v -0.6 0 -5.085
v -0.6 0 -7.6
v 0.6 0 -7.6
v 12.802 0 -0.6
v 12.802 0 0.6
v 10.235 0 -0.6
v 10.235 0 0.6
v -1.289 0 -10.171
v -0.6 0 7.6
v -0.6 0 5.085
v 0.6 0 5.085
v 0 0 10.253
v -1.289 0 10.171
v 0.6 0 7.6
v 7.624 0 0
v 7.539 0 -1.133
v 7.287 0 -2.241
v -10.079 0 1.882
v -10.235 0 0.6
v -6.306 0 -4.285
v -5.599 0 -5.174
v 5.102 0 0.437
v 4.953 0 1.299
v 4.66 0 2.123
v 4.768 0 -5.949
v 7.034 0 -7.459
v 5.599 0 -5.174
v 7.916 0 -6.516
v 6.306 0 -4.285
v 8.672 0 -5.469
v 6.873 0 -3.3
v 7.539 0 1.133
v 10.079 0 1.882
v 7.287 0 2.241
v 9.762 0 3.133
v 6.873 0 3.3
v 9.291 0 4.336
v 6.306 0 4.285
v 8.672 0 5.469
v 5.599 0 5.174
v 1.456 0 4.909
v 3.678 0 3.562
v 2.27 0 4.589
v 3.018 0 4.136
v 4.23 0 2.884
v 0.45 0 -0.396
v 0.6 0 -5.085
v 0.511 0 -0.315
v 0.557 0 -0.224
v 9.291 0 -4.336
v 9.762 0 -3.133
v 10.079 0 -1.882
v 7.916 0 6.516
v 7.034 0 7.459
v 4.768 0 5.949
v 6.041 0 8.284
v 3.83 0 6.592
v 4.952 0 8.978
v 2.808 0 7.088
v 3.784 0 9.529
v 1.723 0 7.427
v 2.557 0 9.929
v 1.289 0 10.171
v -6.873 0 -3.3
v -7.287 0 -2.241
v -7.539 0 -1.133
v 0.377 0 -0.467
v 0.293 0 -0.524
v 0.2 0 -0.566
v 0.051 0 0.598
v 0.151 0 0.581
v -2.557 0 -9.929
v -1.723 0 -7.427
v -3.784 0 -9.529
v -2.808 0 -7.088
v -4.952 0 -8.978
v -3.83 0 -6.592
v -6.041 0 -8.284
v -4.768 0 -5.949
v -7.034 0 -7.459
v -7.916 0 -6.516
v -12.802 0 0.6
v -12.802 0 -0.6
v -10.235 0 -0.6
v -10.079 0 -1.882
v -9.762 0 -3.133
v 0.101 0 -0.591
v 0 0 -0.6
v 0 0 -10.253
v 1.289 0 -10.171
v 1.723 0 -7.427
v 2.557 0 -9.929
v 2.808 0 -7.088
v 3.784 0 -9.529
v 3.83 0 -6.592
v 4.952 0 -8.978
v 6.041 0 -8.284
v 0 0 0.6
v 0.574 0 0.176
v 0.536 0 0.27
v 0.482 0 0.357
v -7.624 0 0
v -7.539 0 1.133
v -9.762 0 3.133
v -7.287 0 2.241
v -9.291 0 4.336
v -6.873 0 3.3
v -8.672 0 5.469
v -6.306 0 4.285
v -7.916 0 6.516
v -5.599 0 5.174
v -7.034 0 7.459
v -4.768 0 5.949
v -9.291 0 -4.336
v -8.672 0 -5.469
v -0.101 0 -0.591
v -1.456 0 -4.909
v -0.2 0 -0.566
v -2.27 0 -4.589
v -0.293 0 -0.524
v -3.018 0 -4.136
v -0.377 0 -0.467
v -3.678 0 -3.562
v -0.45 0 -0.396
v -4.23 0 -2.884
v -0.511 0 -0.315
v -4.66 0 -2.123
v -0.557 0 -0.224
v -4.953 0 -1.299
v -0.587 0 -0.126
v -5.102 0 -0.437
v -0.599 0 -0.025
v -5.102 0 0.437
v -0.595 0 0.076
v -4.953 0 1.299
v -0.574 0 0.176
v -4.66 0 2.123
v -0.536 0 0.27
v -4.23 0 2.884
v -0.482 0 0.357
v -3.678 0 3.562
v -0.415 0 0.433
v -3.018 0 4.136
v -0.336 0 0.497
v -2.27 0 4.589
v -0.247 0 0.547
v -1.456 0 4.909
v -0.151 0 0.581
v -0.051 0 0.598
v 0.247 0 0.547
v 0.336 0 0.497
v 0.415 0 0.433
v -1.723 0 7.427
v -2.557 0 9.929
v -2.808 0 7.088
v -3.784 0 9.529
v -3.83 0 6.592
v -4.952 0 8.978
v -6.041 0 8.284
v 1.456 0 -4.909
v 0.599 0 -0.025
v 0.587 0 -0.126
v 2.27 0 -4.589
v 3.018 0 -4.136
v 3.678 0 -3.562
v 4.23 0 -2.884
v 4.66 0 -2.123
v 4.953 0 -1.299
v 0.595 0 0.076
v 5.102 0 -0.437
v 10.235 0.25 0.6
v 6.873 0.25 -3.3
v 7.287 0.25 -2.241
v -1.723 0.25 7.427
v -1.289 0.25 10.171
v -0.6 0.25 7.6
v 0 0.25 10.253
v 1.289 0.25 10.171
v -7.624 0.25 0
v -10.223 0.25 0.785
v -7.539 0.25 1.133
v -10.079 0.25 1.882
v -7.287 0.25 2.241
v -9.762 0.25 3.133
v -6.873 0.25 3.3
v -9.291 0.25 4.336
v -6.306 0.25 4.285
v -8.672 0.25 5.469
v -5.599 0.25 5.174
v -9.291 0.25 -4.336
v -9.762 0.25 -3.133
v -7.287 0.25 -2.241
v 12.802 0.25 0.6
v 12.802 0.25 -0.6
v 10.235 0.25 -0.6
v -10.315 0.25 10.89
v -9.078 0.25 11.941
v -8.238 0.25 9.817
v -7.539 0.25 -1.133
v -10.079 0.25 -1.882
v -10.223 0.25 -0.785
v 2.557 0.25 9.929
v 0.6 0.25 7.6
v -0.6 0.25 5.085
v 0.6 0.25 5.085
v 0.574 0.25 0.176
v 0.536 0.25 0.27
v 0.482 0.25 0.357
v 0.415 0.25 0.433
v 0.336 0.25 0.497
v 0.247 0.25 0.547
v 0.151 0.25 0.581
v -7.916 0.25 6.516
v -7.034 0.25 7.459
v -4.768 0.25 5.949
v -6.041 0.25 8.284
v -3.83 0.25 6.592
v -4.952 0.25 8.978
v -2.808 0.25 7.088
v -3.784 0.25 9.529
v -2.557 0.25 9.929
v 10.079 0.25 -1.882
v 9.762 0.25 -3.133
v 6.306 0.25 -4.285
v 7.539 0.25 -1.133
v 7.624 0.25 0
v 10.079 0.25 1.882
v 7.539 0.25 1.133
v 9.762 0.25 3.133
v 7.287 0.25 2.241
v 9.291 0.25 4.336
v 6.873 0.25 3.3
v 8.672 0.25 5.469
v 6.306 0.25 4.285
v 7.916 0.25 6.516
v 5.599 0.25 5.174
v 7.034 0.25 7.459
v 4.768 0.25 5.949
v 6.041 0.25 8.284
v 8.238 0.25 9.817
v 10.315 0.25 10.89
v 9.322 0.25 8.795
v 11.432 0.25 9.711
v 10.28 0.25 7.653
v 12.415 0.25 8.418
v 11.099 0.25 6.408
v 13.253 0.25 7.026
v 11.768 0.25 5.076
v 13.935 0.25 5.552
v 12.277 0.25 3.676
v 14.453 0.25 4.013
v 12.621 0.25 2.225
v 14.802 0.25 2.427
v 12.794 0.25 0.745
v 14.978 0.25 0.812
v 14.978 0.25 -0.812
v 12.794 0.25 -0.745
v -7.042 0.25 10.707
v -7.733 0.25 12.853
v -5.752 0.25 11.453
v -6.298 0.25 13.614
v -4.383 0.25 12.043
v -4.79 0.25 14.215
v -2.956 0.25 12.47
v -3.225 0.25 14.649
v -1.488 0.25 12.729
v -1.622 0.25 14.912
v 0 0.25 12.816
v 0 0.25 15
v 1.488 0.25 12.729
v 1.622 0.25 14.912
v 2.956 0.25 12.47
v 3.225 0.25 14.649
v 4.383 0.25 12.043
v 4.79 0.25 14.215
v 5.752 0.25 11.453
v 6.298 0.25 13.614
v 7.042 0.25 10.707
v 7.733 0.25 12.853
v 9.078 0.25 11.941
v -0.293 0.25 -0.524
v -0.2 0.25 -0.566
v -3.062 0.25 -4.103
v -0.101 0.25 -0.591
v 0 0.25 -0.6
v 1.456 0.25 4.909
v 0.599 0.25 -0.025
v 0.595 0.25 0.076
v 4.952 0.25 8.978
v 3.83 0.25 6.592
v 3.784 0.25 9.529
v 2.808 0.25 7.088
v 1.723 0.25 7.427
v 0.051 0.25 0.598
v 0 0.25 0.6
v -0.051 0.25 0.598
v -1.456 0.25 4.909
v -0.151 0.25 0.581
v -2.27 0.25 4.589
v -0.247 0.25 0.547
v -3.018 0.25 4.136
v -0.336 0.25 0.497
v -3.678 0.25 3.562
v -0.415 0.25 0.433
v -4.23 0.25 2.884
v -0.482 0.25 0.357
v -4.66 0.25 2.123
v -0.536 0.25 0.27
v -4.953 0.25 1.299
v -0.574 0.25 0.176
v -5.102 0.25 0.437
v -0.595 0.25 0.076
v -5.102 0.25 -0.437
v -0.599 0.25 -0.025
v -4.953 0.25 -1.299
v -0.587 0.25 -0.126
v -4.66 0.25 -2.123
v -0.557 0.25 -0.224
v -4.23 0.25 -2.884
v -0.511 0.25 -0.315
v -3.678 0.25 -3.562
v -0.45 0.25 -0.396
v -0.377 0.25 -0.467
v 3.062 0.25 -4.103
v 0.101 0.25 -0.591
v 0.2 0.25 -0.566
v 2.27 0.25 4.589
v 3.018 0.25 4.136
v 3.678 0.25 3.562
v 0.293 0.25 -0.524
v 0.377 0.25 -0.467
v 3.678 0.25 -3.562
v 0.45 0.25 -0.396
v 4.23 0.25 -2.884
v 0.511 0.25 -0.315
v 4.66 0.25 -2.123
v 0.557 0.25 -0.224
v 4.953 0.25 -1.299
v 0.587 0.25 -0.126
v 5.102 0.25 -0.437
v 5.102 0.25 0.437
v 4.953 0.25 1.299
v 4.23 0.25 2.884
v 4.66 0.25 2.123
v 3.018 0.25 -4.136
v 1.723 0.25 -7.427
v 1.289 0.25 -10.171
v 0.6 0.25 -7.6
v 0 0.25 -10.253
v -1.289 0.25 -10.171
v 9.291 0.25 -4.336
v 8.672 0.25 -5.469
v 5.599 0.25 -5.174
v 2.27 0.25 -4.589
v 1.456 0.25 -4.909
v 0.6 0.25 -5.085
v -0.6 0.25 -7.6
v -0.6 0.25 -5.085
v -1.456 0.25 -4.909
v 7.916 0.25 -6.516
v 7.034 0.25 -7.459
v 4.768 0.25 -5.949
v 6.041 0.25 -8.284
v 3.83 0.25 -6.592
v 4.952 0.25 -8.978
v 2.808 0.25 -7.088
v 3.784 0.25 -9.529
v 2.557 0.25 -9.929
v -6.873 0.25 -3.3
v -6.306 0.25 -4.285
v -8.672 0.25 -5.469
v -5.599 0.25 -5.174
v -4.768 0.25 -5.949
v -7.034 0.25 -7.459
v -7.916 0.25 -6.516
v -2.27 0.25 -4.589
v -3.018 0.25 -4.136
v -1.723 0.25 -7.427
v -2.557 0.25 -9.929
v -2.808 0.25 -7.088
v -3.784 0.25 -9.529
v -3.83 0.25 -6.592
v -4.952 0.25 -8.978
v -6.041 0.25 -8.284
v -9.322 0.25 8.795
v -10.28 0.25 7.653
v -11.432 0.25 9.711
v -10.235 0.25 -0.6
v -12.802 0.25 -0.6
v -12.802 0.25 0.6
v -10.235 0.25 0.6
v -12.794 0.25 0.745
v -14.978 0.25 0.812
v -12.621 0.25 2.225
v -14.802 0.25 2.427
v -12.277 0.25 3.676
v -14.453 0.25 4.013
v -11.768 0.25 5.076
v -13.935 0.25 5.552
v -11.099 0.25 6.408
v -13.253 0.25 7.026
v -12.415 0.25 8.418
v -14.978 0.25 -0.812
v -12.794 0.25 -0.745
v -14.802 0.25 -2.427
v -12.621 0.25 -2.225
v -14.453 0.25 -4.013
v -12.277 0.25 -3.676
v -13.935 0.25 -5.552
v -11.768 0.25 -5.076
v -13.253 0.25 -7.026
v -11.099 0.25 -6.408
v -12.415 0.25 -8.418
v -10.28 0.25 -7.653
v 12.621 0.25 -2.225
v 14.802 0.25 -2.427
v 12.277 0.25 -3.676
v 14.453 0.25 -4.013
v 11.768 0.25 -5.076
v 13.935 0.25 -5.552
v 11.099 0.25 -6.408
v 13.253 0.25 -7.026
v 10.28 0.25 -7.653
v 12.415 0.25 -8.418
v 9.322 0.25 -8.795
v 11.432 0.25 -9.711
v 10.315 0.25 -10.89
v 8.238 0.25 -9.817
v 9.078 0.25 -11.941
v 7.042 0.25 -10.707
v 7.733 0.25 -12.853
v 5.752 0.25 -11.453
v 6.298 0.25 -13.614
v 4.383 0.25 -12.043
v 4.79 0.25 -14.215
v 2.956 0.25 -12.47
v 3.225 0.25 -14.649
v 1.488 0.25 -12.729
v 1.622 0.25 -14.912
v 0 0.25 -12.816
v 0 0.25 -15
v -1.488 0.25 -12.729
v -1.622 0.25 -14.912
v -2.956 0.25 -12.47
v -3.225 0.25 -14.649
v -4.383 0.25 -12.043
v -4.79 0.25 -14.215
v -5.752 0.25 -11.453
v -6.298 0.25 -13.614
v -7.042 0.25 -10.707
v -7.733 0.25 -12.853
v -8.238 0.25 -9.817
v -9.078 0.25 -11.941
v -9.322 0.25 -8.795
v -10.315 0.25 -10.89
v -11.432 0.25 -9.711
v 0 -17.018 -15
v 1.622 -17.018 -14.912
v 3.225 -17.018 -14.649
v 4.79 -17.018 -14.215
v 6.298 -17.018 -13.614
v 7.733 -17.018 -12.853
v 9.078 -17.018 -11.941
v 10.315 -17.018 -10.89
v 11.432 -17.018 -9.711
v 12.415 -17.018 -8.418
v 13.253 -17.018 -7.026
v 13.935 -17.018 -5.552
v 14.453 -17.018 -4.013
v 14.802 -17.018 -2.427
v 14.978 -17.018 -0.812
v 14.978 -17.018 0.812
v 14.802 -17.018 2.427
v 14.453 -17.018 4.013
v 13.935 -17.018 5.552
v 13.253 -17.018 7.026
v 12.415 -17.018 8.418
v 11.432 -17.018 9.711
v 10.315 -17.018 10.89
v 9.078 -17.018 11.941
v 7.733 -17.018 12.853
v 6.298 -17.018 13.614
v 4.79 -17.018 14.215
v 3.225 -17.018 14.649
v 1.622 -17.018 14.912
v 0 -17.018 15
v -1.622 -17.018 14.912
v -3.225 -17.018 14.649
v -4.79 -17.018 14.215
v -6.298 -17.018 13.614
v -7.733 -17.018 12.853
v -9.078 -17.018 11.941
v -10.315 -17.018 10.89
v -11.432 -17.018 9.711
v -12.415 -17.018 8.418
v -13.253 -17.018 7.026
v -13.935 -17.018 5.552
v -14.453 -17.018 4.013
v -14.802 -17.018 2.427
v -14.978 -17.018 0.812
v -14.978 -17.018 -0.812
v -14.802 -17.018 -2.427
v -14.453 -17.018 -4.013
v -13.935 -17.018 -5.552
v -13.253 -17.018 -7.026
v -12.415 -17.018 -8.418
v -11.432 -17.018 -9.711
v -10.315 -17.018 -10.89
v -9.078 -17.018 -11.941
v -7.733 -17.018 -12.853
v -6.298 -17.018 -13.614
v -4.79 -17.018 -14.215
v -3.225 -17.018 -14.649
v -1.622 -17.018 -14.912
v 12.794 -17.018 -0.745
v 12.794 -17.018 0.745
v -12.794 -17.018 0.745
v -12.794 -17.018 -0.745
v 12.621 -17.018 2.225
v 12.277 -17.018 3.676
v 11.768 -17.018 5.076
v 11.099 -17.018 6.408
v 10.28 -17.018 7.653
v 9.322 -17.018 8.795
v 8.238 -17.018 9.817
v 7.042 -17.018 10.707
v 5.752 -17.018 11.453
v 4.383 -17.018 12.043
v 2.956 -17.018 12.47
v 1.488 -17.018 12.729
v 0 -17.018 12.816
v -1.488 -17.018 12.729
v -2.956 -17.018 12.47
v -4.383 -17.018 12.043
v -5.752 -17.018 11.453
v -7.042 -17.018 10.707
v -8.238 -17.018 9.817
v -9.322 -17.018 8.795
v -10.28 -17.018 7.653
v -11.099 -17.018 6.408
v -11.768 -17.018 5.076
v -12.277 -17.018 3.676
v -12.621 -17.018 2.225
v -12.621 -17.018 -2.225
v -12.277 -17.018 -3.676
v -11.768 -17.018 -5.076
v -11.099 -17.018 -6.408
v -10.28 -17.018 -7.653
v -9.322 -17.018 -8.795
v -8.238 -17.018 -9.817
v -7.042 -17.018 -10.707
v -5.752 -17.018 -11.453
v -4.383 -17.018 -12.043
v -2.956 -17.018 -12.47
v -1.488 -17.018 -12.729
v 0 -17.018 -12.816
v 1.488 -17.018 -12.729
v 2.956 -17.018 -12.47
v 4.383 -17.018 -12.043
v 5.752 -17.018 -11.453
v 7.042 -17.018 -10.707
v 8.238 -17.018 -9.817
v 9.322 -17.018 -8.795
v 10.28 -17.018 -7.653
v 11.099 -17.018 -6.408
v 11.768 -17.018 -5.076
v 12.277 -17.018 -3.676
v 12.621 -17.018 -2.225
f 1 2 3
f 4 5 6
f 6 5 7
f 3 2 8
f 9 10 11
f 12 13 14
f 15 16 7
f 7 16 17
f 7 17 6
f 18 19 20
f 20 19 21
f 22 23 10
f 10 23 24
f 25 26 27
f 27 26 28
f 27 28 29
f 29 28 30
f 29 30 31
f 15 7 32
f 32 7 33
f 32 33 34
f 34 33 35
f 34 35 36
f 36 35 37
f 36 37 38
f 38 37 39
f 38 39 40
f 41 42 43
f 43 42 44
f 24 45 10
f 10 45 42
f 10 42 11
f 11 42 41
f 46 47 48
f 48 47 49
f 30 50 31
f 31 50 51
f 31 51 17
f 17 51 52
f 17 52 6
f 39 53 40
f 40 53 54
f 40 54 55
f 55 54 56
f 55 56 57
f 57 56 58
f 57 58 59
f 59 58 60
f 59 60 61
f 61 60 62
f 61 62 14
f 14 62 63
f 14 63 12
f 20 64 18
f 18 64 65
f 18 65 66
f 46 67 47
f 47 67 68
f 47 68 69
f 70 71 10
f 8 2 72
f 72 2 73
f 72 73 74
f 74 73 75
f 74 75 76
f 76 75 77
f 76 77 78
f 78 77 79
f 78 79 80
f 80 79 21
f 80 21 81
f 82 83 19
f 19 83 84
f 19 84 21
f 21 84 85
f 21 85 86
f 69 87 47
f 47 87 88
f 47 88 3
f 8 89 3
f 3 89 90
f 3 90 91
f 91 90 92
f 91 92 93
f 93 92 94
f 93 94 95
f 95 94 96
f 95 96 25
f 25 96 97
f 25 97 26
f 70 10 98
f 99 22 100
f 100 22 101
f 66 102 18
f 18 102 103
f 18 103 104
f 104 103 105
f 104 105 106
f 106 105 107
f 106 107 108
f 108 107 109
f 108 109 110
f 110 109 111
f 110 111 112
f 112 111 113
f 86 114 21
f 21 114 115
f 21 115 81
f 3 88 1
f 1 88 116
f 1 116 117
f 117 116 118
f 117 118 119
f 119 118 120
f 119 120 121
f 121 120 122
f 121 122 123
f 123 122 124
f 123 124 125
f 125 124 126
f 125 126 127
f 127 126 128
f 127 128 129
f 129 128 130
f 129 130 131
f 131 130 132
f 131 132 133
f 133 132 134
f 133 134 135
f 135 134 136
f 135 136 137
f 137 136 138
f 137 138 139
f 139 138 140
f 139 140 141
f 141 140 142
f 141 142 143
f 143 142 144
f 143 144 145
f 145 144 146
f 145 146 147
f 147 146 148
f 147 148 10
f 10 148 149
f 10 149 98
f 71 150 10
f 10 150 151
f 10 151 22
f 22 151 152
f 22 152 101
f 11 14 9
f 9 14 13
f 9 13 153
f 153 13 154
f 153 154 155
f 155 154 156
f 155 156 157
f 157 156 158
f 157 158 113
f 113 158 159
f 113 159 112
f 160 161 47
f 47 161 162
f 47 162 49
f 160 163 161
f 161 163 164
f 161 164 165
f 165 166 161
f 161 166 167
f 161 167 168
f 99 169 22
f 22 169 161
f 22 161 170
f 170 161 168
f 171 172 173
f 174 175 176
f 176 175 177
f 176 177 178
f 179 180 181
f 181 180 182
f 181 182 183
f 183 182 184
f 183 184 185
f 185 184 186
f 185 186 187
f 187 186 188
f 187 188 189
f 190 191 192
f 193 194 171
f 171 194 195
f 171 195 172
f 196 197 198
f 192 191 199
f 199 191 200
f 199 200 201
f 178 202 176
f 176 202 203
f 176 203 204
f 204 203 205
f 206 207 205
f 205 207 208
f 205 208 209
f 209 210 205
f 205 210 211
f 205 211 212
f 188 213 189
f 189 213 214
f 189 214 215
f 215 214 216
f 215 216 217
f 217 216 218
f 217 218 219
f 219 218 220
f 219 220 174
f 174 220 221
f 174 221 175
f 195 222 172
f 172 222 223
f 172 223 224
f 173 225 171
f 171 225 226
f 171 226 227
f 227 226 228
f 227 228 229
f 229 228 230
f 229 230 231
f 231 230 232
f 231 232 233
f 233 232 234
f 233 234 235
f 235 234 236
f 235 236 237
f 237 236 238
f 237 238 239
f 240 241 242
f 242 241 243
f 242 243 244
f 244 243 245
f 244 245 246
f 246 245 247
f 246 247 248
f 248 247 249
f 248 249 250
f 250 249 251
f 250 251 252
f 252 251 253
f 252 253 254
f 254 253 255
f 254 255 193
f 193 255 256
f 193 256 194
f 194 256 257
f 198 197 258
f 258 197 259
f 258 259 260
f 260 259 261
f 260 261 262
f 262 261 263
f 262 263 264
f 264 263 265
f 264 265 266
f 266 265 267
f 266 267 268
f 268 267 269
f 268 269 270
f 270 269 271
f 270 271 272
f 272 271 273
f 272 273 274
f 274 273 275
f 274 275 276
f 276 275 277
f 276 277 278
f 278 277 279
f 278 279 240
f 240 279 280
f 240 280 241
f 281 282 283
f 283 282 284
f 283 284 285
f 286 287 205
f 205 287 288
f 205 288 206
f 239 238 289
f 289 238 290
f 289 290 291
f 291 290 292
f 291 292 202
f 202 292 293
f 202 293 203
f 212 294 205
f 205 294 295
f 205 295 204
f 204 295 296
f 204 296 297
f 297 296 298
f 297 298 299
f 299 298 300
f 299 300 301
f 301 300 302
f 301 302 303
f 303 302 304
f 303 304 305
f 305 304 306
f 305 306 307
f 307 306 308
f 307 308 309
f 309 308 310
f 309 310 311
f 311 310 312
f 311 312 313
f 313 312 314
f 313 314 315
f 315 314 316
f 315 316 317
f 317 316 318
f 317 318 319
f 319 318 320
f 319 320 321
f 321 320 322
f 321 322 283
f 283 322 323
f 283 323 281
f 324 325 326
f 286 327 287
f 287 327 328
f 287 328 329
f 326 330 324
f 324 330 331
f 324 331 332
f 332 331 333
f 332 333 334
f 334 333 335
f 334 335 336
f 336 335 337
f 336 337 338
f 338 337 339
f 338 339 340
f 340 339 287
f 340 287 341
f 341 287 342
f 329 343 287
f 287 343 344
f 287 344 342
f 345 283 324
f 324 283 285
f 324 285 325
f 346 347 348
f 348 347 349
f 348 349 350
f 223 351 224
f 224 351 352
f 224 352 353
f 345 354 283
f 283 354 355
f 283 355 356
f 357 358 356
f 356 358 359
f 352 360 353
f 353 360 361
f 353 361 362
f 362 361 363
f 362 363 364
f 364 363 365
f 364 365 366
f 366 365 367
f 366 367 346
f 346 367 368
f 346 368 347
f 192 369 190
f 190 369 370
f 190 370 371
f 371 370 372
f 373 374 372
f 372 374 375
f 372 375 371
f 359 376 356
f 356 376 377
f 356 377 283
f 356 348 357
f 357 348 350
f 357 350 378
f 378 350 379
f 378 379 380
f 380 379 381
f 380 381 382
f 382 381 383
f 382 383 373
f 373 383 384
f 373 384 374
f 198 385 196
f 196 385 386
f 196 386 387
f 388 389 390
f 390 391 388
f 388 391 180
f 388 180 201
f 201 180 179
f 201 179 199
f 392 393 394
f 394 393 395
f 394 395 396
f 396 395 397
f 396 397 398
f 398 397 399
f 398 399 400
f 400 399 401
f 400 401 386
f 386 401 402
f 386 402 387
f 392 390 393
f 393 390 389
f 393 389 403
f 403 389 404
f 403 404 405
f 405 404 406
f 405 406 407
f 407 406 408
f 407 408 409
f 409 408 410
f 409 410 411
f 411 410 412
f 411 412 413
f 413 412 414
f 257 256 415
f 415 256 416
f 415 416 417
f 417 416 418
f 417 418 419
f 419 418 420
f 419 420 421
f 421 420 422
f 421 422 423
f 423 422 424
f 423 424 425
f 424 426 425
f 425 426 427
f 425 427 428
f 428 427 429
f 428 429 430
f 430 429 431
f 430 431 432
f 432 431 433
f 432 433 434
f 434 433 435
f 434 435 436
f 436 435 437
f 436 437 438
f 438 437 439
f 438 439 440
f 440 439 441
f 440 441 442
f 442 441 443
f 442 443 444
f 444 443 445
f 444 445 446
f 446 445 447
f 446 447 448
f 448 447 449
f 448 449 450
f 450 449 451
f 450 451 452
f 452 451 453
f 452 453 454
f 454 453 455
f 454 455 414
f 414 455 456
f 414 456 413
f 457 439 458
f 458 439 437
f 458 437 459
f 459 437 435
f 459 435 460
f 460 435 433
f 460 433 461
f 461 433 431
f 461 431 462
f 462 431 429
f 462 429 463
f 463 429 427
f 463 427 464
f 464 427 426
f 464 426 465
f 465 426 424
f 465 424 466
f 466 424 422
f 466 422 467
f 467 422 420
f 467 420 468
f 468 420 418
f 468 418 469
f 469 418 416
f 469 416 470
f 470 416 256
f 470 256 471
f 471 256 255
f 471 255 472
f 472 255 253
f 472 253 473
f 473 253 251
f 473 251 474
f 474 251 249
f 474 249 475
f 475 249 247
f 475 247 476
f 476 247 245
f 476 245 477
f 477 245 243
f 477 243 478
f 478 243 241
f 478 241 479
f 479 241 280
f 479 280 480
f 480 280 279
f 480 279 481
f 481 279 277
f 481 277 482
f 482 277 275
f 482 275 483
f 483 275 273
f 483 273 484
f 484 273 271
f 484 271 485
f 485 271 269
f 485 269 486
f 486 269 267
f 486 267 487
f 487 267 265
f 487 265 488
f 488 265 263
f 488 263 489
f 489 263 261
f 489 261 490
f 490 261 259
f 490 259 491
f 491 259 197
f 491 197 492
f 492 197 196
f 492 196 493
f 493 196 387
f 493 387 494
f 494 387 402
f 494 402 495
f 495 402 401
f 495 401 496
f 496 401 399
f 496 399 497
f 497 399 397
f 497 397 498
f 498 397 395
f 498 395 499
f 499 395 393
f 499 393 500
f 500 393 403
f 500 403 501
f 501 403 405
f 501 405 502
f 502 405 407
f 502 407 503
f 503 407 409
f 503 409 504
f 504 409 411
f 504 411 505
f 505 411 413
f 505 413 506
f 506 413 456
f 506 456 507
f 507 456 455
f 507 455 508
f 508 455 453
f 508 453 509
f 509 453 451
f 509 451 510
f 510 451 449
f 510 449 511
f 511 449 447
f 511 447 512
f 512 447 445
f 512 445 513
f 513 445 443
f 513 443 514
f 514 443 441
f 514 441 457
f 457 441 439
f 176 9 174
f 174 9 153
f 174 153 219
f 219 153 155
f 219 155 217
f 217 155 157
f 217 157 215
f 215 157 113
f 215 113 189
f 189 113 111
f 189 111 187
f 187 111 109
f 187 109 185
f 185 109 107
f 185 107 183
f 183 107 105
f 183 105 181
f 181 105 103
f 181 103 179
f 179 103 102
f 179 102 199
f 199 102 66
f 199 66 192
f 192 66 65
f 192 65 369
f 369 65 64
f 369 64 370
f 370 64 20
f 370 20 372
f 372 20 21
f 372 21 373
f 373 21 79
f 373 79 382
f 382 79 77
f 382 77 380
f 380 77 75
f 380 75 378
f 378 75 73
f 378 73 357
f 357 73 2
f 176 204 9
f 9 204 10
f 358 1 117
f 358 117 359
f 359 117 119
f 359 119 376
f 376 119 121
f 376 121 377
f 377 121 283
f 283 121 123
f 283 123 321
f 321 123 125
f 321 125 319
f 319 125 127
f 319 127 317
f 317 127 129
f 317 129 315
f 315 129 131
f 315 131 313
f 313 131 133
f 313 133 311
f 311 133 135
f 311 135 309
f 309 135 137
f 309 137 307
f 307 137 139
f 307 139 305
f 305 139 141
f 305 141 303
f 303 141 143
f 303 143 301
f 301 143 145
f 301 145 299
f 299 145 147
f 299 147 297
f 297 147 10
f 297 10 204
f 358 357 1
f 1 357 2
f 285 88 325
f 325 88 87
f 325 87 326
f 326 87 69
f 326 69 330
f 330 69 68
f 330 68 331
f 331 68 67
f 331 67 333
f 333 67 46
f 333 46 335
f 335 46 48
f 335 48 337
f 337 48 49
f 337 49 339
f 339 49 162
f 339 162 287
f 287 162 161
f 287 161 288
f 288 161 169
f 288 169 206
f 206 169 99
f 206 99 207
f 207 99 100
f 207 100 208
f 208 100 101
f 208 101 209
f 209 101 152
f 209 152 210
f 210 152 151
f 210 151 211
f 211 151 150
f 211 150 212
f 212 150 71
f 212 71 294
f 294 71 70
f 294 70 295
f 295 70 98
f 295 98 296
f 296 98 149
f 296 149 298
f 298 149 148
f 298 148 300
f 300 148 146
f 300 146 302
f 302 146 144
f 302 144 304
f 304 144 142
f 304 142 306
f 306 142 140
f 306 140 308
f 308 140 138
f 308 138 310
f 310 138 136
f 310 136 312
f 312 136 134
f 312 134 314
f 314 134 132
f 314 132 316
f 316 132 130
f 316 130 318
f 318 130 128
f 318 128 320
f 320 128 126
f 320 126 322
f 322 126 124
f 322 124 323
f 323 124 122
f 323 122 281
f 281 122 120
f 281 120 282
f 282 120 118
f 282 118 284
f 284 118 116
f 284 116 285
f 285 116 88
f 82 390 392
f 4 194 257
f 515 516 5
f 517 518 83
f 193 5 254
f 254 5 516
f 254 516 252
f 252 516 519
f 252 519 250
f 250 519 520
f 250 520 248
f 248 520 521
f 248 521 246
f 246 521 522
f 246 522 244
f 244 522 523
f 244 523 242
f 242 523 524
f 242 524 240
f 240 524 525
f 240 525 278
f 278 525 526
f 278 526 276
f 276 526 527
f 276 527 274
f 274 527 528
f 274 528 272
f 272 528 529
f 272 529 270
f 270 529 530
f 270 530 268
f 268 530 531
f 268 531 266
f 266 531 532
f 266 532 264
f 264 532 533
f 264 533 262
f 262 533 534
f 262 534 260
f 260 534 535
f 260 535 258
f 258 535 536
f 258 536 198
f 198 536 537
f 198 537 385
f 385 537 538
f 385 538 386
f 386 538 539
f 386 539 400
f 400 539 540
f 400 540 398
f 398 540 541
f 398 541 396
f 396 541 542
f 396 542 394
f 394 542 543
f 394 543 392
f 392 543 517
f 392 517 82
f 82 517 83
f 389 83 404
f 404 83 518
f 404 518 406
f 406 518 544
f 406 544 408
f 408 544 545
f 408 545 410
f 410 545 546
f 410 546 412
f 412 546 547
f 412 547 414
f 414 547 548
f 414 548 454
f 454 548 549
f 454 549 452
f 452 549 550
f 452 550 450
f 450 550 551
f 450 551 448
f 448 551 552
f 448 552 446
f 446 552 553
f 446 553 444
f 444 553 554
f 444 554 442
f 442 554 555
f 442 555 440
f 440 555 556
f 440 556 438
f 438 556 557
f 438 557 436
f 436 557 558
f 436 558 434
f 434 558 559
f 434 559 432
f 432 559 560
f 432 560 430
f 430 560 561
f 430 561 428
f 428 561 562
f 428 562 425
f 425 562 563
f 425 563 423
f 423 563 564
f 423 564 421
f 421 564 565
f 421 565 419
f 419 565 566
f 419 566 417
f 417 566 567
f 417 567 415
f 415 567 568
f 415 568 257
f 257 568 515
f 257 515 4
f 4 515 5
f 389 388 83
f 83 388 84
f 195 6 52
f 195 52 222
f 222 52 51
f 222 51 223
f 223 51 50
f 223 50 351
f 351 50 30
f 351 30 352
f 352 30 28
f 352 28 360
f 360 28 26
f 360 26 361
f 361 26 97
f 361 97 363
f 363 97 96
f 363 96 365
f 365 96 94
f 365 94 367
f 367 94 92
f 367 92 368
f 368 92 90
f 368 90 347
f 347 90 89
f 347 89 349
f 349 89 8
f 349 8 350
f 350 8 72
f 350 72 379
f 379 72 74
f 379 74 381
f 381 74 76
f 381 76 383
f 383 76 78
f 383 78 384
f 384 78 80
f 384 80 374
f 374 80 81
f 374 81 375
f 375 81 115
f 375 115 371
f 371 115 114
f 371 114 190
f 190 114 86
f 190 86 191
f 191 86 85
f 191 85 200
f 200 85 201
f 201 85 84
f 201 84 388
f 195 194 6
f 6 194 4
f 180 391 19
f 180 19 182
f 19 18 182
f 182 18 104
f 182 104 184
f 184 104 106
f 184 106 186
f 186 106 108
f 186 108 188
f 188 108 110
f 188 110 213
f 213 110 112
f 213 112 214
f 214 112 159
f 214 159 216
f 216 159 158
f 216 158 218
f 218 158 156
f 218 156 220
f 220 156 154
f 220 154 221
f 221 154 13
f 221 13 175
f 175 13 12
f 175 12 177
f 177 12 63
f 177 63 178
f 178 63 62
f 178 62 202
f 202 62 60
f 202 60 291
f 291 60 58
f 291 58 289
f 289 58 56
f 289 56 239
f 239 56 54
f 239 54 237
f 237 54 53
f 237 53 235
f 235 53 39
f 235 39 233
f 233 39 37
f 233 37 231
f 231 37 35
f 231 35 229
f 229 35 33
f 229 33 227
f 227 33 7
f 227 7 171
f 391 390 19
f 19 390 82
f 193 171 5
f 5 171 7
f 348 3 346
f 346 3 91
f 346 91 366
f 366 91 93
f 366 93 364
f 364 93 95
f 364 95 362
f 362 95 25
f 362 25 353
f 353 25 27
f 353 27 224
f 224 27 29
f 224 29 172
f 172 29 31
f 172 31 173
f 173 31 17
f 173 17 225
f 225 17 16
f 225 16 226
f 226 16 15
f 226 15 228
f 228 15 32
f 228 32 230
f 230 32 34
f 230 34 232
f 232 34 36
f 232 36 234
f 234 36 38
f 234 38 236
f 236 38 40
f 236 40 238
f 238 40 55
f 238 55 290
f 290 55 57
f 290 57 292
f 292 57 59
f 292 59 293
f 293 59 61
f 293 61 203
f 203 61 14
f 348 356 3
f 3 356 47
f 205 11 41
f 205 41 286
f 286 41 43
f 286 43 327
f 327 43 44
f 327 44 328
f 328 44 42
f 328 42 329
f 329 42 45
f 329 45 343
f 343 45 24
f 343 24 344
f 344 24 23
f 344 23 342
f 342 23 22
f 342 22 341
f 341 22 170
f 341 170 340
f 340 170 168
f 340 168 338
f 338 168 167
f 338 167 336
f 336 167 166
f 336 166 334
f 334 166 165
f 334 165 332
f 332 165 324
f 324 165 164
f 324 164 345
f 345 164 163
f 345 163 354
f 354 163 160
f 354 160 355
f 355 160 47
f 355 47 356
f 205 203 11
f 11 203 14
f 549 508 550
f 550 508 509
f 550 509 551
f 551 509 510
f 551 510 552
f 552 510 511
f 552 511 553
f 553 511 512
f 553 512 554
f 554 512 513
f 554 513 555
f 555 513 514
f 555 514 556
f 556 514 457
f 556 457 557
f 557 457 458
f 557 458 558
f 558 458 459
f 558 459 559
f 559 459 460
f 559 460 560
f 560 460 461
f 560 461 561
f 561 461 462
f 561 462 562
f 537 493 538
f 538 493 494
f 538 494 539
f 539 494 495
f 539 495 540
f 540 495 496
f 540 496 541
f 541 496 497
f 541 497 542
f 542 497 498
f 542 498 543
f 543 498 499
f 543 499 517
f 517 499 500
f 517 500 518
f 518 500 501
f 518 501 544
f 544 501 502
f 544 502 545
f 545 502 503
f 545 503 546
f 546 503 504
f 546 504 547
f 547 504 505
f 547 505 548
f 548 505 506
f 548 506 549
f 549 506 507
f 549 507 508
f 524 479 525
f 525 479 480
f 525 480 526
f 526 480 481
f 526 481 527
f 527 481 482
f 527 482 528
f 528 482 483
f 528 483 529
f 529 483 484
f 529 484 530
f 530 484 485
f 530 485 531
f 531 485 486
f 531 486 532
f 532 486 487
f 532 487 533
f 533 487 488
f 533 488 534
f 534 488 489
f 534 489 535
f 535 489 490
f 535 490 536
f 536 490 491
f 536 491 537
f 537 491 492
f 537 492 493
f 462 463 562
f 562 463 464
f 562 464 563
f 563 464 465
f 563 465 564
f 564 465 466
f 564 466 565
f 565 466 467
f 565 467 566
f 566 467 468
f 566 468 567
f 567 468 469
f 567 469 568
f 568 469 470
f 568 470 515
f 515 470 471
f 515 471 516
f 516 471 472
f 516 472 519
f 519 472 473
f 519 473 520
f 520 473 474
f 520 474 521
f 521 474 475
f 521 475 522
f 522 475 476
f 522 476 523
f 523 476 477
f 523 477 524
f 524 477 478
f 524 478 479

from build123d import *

# Parameters (mm, degrees)
SKETCH1_R           = 15
SKETCH1_R_2         = 0.6
BOSS_EXTRUDE1_DEPTH = 0.25
SKETCH2_R           = 15
SKETCH2_R_2         = 12.815737343
BOSS_EXTRUDE2_DEPTH = 17.268


with BuildPart() as part:
    # Sketch1 → Boss-Extrude1 (new body)
    with BuildSketch(Plane(origin=(0, 0, 0), x_dir=(1, 0, 0), z_dir=(0, 1, 0))):
        Circle(SKETCH1_R)
        Circle(SKETCH1_R_2, mode=Mode.SUBTRACT)
        with BuildLine():
            Line((-12.801684406, 0.6), (-10.235182592, 0.6))
            ThreePointArc((-10.235182592, 0.6), (0, 10.252753907), (10.235182592, 0.6))
            Line((10.235182592, 0.6), (12.801684406, 0.6))
            ThreePointArc((12.801684406, 0.6), (0, 12.815737343), (-12.801684406, 0.6))
        make_face(mode=Mode.SUBTRACT)
        with BuildLine():
            Line((-0.6, 7.600213812), (-0.6, 5.084960781))
            ThreePointArc((-0.6, 5.084960781), (-5.120236922, 0), (-0.6, -5.084960781))
            Line((-0.6, -5.084960781), (-0.6, -7.600213812))
            ThreePointArc((-0.6, -7.600213812), (-7.623860569, 0), (-0.6, 7.600213812))
        make_face(mode=Mode.SUBTRACT)
        with BuildLine():
            Line((0.6, 5.084960781), (0.6, 7.600213812))
            ThreePointArc((0.6, 7.600213812), (7.623860569, 0), (0.6, -7.600213812))
            Line((0.6, -7.600213812), (0.6, -5.084960781))
            ThreePointArc((0.6, -5.084960781), (5.120236922, 0), (0.6, 5.084960781))
        make_face(mode=Mode.SUBTRACT)
        with BuildLine():
            Line((-12.801684406, -0.6), (-10.235182592, -0.6))
            ThreePointArc((-10.235182592, -0.6), (0, -10.252753907), (10.235182592, -0.6))
            Line((10.235182592, -0.6), (12.801684406, -0.6))
            ThreePointArc((12.801684406, -0.6), (0, -12.815737343), (-12.801684406, -0.6))
        make_face(mode=Mode.SUBTRACT)
    extrude(amount=BOSS_EXTRUDE1_DEPTH)

    # Sketch2 → Boss-Extrude2 (add)
    with BuildSketch(Plane(origin=(0, 0.25, 0), x_dir=(1, 0, 0), z_dir=(0, 1, 0))):
        Circle(SKETCH2_R)
        Circle(SKETCH2_R_2, mode=Mode.SUBTRACT)
    extrude(amount=-BOSS_EXTRUDE2_DEPTH)


solid = part.part
